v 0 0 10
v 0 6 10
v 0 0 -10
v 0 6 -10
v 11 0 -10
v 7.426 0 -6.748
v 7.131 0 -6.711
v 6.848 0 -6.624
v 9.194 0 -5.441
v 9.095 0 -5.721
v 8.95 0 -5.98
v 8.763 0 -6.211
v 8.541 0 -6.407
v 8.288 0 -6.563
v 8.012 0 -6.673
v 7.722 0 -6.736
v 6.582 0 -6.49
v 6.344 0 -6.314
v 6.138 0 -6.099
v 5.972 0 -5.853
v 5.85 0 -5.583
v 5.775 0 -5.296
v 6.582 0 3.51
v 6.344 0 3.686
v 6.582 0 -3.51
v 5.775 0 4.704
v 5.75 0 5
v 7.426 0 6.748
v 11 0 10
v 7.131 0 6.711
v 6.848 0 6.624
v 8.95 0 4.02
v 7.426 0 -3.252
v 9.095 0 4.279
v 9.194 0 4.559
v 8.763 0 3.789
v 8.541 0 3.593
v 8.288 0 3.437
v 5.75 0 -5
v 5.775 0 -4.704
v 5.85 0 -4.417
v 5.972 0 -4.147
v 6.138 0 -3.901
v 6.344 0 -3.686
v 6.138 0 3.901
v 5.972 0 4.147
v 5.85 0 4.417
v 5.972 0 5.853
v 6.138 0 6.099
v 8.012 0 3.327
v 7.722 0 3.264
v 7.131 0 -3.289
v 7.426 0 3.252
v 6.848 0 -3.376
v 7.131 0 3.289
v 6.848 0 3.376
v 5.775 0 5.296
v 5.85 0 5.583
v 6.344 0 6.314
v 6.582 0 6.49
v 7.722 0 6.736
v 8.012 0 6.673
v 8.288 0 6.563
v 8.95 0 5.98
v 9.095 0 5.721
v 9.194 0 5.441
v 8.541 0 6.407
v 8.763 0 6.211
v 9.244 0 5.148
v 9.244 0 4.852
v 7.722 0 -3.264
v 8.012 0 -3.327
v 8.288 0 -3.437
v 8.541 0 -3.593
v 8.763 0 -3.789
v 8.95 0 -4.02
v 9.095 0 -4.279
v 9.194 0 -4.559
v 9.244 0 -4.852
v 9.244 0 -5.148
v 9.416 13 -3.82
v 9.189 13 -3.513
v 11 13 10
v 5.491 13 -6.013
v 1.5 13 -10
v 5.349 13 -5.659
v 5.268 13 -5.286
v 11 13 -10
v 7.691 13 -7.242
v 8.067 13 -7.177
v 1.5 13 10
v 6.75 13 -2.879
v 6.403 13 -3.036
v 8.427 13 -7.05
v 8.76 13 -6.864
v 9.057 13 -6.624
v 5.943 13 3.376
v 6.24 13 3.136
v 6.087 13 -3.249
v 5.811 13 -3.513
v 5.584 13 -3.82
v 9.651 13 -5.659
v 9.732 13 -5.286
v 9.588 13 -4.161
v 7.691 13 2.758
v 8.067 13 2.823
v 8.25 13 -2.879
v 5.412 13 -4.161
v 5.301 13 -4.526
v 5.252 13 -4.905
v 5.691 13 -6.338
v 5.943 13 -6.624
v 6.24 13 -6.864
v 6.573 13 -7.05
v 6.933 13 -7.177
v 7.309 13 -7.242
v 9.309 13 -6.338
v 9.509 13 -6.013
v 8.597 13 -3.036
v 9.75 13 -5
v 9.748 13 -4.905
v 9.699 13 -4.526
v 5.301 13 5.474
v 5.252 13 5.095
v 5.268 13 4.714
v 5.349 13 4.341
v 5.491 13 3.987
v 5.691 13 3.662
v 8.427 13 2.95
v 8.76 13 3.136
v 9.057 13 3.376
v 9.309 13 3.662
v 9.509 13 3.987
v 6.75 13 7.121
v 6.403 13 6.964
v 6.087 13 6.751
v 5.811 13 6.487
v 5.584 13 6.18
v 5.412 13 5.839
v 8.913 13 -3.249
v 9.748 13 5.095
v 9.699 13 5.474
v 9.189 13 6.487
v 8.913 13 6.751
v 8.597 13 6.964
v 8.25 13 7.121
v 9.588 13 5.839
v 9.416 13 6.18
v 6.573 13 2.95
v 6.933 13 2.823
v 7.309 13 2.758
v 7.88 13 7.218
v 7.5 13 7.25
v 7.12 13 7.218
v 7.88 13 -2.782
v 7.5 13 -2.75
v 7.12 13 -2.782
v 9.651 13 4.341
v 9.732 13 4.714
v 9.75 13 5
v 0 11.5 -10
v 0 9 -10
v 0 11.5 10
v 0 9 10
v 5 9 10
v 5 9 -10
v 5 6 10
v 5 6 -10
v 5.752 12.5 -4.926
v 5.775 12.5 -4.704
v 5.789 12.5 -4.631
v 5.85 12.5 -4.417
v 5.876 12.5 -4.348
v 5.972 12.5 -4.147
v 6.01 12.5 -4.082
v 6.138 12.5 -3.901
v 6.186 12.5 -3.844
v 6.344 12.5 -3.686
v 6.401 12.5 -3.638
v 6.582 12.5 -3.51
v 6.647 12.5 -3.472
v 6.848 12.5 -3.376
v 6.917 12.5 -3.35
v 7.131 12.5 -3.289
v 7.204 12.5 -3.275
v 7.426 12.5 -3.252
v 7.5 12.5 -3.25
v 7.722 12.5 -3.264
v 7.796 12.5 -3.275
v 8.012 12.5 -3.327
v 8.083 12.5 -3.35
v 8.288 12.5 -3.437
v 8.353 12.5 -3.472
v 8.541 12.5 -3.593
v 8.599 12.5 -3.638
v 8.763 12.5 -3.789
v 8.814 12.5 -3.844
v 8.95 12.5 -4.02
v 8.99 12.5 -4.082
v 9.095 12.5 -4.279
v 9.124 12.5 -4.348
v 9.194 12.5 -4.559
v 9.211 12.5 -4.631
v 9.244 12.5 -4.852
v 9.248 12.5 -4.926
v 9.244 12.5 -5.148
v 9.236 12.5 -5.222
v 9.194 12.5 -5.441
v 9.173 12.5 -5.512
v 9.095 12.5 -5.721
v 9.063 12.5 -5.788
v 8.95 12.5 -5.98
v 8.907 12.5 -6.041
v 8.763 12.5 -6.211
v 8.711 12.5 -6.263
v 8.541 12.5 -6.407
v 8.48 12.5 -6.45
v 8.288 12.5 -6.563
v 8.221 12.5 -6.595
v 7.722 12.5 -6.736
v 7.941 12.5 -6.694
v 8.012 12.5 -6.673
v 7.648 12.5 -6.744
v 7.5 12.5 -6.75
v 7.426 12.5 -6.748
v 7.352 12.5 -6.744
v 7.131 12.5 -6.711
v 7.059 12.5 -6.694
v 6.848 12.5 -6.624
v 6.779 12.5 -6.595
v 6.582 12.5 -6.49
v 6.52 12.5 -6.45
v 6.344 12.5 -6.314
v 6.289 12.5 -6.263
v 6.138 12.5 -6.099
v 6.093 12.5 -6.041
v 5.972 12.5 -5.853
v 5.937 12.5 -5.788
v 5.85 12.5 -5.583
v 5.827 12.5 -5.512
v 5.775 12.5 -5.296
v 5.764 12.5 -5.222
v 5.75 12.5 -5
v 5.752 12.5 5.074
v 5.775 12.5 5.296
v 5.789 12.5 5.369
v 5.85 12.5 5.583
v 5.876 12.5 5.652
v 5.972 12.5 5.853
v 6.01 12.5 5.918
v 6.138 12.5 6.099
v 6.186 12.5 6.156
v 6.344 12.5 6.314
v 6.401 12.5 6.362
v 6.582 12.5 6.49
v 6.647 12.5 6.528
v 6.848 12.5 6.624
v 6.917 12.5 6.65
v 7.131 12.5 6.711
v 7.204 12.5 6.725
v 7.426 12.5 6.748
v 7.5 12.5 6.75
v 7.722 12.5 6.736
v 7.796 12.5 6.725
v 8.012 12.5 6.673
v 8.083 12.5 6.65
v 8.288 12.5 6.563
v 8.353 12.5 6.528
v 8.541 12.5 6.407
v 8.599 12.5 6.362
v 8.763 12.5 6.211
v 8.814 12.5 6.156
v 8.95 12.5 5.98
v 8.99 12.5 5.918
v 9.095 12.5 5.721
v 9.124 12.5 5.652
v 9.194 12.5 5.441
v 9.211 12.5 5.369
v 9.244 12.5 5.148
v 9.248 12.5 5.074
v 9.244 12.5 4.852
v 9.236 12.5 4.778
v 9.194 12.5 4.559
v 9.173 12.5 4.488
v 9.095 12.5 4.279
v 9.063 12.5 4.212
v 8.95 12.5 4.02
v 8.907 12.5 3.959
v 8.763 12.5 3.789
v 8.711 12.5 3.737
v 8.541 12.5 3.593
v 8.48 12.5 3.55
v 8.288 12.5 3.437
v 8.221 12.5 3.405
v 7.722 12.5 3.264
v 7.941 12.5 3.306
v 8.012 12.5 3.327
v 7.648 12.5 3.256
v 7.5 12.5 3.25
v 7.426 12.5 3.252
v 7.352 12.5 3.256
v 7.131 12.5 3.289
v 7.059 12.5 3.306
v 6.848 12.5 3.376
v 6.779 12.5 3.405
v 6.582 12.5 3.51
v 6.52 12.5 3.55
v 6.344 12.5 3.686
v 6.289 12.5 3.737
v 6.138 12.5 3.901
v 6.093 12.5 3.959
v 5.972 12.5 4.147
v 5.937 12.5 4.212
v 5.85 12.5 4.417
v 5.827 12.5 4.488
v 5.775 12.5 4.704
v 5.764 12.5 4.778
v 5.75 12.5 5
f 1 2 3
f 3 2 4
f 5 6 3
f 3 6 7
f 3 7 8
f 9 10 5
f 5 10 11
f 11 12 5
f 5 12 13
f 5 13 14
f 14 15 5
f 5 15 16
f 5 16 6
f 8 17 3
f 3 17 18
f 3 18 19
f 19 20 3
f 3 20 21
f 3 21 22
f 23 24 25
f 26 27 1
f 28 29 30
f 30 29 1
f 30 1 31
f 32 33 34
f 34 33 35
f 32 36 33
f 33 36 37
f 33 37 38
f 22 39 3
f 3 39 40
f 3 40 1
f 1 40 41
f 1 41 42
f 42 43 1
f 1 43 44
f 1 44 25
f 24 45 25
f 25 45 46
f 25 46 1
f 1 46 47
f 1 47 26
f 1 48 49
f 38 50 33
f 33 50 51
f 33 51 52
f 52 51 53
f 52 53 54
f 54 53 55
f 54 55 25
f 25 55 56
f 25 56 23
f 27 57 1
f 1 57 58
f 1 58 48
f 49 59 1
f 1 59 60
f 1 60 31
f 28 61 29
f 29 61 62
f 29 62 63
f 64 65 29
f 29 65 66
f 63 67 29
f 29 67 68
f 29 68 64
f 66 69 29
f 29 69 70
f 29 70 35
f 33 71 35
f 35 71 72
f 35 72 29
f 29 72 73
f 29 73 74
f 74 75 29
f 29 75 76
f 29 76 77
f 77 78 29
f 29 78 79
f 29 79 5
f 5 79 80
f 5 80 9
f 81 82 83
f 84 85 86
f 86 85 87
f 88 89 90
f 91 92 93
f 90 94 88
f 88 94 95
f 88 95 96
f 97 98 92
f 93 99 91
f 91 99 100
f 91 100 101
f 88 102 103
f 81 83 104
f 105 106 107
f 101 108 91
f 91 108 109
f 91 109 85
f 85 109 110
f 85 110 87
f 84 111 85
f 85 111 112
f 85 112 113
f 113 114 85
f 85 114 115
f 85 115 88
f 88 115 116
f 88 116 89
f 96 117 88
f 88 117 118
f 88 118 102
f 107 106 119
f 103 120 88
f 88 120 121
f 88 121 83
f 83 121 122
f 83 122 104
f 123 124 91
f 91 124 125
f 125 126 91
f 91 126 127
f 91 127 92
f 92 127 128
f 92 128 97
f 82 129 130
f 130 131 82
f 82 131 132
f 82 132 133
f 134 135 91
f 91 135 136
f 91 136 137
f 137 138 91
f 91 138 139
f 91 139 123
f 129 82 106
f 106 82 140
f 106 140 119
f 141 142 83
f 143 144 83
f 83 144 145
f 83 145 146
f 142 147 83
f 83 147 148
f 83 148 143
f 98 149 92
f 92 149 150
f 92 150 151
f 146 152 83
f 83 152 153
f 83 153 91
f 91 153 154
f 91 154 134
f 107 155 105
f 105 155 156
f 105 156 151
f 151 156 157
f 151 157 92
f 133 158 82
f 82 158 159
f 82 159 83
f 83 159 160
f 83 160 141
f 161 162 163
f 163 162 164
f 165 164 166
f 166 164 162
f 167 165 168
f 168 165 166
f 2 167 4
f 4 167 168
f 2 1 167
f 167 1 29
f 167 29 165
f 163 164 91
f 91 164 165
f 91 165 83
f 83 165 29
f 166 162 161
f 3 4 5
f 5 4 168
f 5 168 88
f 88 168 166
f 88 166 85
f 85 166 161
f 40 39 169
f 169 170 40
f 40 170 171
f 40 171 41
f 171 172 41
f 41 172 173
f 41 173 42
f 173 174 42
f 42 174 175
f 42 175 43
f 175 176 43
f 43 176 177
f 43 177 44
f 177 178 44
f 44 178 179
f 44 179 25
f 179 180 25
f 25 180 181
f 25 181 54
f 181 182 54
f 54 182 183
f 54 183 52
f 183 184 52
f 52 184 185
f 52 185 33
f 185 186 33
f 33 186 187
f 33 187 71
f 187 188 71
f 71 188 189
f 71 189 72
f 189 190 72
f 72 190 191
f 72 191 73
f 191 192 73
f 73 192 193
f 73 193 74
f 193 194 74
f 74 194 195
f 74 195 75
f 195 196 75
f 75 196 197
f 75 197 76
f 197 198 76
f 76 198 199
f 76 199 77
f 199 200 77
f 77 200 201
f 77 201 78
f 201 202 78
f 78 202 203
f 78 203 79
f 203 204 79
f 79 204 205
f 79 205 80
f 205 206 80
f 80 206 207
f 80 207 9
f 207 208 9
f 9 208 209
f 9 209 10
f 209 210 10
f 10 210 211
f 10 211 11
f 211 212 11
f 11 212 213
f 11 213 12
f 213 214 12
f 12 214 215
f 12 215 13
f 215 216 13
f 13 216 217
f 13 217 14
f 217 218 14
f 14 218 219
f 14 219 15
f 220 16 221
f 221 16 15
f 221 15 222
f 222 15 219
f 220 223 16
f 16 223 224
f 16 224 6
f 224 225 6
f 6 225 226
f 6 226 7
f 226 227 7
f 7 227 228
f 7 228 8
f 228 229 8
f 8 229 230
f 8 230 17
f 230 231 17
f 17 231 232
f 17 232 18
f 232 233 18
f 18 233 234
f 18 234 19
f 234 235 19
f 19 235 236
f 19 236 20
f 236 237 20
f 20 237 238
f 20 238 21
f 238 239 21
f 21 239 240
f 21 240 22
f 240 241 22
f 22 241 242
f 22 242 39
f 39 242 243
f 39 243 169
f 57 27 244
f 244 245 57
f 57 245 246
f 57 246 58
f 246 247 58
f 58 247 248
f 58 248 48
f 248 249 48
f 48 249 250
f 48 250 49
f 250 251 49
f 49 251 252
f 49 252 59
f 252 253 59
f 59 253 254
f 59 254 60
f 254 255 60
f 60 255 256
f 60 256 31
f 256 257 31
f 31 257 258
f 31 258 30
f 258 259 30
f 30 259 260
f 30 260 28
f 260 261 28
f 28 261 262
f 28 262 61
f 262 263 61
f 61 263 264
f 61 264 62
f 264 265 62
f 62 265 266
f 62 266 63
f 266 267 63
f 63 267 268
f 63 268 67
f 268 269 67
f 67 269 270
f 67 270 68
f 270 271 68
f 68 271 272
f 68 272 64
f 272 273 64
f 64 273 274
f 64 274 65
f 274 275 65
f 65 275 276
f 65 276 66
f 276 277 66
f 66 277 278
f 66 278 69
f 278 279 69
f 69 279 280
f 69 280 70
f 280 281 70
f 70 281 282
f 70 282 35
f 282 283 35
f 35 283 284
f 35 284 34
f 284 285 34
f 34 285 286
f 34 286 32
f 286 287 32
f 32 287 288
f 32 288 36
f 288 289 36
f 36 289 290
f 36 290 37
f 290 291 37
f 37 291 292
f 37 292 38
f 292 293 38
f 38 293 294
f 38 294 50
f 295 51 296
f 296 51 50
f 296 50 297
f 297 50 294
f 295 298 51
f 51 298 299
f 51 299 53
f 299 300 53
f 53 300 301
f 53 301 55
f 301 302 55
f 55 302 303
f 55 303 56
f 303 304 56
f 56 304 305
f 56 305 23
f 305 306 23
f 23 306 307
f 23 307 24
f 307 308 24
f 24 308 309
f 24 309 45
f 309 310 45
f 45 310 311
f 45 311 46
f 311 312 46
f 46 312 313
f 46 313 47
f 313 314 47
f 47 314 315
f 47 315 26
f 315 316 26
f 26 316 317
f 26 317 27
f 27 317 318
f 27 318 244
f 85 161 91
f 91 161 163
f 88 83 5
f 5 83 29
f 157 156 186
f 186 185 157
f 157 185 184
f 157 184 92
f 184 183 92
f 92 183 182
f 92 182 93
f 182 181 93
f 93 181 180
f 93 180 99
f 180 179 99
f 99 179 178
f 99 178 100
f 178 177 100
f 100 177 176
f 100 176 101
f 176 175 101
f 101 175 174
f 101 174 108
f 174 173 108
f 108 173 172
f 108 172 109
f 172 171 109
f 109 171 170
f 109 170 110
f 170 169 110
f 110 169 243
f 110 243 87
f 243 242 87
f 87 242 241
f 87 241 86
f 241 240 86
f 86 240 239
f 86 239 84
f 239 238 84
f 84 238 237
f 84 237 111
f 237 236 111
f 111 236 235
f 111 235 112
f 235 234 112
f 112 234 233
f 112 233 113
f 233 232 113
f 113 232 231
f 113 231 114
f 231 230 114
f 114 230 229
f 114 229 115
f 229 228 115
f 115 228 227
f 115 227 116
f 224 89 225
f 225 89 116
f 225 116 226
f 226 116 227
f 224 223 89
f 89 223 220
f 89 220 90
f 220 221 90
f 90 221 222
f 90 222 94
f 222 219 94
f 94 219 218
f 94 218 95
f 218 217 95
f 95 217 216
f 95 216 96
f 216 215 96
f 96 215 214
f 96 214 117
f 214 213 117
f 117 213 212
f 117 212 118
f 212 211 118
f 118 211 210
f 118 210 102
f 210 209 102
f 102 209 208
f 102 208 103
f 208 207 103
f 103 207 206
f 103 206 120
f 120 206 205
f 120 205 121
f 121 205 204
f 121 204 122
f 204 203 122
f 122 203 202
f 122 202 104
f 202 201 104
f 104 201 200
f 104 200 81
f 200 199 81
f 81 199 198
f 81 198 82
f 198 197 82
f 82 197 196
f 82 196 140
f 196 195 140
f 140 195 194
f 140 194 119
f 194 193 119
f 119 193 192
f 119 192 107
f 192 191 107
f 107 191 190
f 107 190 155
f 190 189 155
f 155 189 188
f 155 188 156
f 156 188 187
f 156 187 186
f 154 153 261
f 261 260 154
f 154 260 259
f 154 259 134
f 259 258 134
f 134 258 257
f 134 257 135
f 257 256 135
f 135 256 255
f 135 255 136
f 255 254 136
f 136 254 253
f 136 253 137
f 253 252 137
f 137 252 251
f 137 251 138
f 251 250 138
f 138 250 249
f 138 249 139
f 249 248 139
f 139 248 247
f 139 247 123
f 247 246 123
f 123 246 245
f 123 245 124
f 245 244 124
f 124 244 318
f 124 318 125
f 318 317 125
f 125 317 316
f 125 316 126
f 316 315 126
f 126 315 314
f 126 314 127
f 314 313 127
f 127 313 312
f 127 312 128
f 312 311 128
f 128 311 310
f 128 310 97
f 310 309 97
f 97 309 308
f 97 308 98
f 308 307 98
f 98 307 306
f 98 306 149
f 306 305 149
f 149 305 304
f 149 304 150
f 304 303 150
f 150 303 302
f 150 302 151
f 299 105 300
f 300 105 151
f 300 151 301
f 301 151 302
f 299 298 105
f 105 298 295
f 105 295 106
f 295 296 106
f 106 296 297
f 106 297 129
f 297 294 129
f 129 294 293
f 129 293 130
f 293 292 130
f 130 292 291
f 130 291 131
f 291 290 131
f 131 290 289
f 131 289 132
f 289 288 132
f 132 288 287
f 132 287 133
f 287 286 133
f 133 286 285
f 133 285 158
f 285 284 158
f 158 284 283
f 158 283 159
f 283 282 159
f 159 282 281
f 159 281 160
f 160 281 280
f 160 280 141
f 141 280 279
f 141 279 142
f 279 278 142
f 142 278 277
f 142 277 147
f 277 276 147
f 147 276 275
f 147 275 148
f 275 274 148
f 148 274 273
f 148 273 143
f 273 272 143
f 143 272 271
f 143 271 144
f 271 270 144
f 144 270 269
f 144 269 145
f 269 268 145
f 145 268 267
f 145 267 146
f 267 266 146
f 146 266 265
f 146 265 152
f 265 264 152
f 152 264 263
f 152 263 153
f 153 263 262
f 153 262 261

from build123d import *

# Parameters (mm, degrees)
BOSS_EXTRUDE1_DEPTH = 10
SKETCH2_R           = 1.75
CUT_EXTRUDE1_DEPTH  = 14
CHAMFER1_SIZE       = 1.5
SKETCH3_W           = 5
SKETCH3_H           = 13
CUT_EXTRUDE2_DEPTH  = 21
SKETCH4_W           = 20
SKETCH4_H           = 13
BOSS_EXTRUDE2_DEPTH = 1
CHAMFER3_SIZE       = 0.5


with BuildPart() as part:
    # Sketch1 → Boss-Extrude1 (new body, symmetric)
    with BuildSketch(Plane.XY):
        Polygon((0, 0), (15, 0), (15, 6), (10, 6), (10, 9), (15, 9), (15, 13), (0, 13), (0, 9), (5, 9), (5, 6), (0, 6), align=None)
    extrude(amount=BOSS_EXTRUDE1_DEPTH, both=True)

    # Sketch2 → Cut-Extrude1 (cut, through all)
    with BuildSketch(Plane(origin=(0, 13, 0), x_dir=(1, 0, 0), z_dir=(0, 1, 0))):
        with Locations((7.5, -5)):
            Circle(SKETCH2_R)
        with Locations((7.5, 5)):
            Circle(SKETCH2_R)
    extrude(amount=-CUT_EXTRUDE1_DEPTH, mode=Mode.SUBTRACT)

    # Chamfer1
    chamfer1_edges = [part.edges().sort_by_distance(p)[0] for p in [
        (0, 13, 0),
        (15, 13, 0),
    ]]
    chamfer(chamfer1_edges, length=CHAMFER1_SIZE)

    # Sketch3 → Cut-Extrude2 (cut, through all)
    with BuildSketch(Plane.XY.offset(10)):
        with Locations((12.5, 6.5)):
            Rectangle(SKETCH3_W, SKETCH3_H)
    extrude(amount=-CUT_EXTRUDE2_DEPTH, mode=Mode.SUBTRACT)

    # Sketch4 → Boss-Extrude2 (add)
    with BuildSketch(Plane(origin=(10, 0, 0), x_dir=(0, 0, -1), z_dir=(1, 0, 0))):
        with Locations((0, 6.5)):
            Rectangle(SKETCH4_W, SKETCH4_H)
    extrude(amount=BOSS_EXTRUDE2_DEPTH)

    # Chamfer3
    chamfer3_edges = [part.edges().sort_by_distance(p)[0] for p in [
        (5.75, 13, 5),
        (5.75, 13, -5),
    ]]
    chamfer(chamfer3_edges, length=CHAMFER3_SIZE)


solid = part.part
